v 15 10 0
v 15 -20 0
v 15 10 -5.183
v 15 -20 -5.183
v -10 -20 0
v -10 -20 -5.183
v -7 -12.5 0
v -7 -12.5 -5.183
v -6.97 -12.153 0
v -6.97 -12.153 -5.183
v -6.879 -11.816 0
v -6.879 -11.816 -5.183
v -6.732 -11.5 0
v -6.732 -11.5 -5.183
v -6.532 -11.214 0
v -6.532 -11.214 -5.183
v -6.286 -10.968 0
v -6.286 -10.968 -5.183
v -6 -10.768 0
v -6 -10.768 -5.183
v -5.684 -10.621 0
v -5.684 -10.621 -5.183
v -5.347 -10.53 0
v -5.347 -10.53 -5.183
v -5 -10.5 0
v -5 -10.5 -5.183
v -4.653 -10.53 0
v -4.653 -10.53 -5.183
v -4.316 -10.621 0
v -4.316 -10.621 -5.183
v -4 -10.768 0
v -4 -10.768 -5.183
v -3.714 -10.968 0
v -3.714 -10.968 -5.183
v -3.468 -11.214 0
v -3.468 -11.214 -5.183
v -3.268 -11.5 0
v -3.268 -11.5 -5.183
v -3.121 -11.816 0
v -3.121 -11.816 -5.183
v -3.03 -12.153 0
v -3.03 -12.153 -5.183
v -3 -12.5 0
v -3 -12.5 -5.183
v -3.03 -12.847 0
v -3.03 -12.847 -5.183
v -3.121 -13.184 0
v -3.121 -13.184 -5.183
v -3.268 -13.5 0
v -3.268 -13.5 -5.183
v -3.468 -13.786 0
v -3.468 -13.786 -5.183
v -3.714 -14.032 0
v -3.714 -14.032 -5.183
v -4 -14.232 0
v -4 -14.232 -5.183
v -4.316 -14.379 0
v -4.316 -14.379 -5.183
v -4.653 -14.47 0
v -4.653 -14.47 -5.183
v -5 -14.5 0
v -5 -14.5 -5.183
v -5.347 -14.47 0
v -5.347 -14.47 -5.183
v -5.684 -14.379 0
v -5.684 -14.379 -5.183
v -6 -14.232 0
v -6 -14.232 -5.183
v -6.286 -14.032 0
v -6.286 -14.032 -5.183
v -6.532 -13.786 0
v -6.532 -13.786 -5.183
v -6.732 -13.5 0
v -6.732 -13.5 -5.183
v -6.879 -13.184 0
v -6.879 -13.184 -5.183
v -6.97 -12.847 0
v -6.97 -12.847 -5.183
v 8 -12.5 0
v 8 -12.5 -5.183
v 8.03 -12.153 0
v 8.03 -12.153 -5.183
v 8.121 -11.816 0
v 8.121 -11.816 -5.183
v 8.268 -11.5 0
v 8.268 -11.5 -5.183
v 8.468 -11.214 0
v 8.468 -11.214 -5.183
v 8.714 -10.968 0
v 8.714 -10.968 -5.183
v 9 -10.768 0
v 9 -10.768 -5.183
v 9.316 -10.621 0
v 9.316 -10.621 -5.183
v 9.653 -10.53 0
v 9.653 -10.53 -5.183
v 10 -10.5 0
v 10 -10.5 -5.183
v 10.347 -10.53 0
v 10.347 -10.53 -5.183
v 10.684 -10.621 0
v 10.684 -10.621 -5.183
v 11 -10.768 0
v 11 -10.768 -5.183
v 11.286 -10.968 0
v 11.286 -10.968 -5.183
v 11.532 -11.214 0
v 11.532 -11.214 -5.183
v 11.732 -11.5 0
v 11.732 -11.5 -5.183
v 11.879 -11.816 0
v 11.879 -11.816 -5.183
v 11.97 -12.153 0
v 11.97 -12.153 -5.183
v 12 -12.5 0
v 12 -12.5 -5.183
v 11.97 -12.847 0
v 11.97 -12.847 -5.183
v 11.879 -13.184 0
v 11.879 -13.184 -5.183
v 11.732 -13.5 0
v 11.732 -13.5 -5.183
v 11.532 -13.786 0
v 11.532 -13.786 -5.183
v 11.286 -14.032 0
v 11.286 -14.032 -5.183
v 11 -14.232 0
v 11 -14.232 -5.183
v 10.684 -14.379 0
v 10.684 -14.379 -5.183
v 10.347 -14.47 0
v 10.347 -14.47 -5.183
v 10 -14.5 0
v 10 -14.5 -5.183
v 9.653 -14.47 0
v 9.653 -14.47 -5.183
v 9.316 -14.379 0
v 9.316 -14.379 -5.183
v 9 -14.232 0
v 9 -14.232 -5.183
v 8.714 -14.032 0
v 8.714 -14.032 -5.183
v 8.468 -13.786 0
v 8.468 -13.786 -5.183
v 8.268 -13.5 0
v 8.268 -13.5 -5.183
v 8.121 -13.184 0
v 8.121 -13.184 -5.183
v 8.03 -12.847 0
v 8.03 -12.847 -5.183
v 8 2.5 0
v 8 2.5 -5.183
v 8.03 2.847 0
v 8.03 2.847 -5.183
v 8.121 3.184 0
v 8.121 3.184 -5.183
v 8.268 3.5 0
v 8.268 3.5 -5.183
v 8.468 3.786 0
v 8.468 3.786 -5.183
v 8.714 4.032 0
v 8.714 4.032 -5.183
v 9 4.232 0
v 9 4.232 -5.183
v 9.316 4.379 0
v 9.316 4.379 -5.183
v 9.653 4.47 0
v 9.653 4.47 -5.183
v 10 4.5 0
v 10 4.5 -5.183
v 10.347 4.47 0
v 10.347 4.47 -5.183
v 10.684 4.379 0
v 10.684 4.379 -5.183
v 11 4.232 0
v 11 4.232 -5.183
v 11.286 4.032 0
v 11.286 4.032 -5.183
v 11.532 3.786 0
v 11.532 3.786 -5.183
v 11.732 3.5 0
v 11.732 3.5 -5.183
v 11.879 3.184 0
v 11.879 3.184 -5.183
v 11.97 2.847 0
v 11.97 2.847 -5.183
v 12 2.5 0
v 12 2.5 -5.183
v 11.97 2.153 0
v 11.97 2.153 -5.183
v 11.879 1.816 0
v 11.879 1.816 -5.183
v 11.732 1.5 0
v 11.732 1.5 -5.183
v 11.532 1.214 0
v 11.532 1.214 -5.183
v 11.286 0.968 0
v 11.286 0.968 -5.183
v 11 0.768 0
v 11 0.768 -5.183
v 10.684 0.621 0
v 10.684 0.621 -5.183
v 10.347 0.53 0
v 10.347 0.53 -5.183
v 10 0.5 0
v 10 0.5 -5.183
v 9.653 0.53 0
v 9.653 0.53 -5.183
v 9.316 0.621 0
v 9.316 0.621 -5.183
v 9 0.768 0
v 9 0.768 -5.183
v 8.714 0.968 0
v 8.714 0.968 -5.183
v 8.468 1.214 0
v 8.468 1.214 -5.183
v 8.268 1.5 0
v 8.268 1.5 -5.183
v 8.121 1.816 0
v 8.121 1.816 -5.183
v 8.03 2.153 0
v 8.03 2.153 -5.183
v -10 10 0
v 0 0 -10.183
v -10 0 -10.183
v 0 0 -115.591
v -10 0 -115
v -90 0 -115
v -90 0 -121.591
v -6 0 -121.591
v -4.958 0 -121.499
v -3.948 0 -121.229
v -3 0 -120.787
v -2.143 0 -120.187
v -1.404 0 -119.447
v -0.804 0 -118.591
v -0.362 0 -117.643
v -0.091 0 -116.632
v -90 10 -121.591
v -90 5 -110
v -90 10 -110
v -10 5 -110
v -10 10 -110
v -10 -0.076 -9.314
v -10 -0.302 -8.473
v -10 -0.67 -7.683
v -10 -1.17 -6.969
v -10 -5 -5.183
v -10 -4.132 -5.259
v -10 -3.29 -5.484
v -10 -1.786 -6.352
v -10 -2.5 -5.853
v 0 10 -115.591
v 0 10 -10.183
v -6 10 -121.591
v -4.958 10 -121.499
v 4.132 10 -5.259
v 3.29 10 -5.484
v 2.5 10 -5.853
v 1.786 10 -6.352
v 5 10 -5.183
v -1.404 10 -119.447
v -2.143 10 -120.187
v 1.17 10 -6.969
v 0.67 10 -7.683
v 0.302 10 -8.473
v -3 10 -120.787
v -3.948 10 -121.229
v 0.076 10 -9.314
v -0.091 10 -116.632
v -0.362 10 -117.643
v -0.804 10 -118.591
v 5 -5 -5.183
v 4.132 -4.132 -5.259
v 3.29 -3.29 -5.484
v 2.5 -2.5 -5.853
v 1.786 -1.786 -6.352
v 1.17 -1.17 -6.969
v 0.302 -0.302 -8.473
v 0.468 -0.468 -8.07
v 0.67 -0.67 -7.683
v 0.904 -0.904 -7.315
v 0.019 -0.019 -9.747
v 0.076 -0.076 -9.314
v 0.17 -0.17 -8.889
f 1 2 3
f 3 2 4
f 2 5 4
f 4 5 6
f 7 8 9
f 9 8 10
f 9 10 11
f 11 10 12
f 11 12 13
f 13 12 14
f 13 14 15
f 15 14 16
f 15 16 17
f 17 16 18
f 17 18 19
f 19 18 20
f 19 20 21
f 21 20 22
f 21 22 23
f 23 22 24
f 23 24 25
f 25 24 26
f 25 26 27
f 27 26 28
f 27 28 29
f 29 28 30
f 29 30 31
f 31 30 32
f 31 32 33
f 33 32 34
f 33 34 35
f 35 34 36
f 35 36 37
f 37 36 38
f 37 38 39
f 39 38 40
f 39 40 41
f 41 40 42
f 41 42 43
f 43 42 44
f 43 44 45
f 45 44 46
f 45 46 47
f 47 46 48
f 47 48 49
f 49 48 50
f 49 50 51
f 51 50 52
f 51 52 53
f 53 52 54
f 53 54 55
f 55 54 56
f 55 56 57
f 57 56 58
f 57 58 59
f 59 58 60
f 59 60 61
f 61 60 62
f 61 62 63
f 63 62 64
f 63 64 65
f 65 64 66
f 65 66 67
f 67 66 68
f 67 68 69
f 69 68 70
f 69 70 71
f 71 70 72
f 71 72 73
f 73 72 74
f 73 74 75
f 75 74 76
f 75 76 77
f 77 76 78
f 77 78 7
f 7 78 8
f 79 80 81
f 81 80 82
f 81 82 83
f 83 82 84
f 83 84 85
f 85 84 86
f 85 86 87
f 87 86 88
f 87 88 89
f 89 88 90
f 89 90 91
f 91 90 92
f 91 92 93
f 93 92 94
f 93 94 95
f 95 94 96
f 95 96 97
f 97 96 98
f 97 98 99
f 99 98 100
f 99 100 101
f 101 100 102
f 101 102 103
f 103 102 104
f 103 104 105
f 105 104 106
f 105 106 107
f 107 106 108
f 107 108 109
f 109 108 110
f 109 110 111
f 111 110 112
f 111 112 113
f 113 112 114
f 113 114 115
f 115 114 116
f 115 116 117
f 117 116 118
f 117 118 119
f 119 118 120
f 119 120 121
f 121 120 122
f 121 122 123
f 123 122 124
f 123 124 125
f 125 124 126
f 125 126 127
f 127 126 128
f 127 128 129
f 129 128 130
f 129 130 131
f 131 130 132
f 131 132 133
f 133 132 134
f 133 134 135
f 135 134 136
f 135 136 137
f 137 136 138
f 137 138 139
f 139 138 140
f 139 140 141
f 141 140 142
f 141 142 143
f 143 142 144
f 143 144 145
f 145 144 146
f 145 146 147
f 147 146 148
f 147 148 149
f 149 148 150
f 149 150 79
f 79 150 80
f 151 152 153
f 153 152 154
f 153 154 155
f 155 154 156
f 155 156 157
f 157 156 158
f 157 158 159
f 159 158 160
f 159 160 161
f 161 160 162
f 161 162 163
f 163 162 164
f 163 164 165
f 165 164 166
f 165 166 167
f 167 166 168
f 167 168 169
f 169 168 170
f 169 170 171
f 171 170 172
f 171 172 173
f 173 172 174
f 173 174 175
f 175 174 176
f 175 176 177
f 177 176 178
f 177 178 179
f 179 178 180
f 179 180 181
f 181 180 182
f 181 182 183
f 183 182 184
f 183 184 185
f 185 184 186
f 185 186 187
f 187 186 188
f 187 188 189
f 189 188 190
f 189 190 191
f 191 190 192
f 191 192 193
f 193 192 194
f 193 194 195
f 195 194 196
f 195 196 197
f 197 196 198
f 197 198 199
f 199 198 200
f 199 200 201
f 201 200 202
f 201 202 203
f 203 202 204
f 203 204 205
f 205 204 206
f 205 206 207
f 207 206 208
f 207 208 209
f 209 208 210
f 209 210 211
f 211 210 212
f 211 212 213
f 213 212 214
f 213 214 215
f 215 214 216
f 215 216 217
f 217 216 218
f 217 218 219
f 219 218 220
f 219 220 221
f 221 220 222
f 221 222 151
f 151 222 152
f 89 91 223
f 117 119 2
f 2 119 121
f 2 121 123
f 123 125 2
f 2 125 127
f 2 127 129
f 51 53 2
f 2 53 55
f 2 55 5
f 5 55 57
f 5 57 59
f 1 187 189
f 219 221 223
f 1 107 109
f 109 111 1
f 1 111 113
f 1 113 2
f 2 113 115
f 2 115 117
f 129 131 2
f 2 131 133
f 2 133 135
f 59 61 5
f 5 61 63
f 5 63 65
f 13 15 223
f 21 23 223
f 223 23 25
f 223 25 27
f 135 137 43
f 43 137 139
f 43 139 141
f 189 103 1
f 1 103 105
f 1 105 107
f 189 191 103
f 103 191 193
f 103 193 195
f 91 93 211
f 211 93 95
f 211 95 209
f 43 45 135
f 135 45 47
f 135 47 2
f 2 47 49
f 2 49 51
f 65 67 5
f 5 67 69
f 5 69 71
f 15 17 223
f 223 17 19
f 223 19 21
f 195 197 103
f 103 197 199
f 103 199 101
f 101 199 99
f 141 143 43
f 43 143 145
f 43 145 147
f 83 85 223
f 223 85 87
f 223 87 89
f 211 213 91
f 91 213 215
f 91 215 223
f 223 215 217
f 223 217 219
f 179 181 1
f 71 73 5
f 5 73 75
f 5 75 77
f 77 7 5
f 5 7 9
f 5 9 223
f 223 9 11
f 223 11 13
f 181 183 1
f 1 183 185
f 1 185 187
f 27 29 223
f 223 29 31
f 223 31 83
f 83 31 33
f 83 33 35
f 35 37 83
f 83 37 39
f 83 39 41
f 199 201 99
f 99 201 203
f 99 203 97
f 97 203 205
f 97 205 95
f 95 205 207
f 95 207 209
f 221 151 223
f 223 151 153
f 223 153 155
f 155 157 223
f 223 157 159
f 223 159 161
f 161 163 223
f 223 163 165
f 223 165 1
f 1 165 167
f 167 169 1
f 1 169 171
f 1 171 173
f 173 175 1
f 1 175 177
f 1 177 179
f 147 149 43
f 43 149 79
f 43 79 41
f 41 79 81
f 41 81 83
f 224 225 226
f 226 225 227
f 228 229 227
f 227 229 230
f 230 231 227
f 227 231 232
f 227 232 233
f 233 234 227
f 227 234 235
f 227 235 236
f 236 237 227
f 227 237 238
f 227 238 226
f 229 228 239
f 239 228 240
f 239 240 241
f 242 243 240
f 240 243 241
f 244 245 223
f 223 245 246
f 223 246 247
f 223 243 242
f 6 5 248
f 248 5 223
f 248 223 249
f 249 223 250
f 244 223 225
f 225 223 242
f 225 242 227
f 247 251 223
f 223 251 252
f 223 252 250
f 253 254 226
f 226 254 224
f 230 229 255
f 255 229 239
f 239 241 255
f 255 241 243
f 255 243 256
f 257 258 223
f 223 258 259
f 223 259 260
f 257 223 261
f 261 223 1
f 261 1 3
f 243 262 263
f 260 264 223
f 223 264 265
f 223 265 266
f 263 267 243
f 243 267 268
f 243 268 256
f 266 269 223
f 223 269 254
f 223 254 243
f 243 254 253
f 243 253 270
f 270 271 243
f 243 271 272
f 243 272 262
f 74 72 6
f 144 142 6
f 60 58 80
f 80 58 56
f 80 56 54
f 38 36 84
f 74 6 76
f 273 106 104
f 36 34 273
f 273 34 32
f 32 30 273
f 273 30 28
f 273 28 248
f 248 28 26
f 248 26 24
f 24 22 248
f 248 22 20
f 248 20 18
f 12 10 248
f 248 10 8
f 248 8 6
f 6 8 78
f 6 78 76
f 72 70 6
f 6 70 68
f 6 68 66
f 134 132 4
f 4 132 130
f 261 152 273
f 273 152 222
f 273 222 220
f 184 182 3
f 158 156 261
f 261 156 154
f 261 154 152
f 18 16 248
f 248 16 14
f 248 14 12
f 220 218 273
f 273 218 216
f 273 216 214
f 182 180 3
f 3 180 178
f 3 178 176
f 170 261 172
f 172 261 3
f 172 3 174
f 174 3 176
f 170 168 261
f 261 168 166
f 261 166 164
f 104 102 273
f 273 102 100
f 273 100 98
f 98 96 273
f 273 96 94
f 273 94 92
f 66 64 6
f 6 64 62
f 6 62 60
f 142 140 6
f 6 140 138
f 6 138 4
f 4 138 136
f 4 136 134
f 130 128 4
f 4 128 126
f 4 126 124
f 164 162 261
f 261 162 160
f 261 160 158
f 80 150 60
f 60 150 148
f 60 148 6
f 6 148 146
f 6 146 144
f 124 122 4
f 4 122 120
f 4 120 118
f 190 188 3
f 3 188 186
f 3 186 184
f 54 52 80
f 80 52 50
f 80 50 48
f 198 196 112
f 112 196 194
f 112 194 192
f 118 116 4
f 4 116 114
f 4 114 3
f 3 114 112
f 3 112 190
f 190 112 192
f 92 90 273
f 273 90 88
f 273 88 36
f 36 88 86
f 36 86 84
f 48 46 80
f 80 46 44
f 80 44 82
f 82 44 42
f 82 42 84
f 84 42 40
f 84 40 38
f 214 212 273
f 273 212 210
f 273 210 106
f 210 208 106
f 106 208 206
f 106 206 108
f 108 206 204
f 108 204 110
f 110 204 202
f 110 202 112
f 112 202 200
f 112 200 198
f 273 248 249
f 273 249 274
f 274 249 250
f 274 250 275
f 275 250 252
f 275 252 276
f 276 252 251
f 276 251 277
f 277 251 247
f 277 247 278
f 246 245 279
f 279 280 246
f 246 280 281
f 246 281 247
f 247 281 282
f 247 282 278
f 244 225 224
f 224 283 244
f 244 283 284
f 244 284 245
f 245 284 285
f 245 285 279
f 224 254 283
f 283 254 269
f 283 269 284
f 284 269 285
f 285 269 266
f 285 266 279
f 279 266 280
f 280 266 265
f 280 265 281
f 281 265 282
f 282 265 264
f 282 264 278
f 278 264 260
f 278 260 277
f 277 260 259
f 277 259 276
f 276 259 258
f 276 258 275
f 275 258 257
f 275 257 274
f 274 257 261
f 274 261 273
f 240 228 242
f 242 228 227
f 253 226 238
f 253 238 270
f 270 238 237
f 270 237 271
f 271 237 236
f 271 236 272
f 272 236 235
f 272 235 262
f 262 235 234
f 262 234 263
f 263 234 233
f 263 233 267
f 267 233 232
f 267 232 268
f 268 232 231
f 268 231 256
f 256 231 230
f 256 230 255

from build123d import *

# Parameters (mm, degrees)
SKETCH1_W           = 10
SKETCH1_H           = 110
SKETCH1_W_2         = 15
SKETCH1_H_2         = 7.182689318
BOSS_EXTRUDE1_DEPTH = 10
SKETCH2_W           = 25
SKETCH2_H           = 7.182689318
BOSS_EXTRUDE2_DEPTH = 20
SKETCH3_R           = 2
CUT_EXTRUDE1_DEPTH  = 20
SKETCH4_R           = 2
CUT_EXTRUDE2_DEPTH  = 2
FILLET2_R           = 5
CHAMFER2_SIZE       = 5
FILLET3_R           = 6


with BuildPart() as part:
    # Sketch1 → Boss-Extrude1 (new body)
    with BuildSketch(Plane(origin=(0, 0, 0), x_dir=(1, 0, 0), z_dir=(0, 1, 0))):
        Polygon((-10, 110), (0, 110), (0, 121.590602055), (-90, 121.590602055), (-90, 110), align=None)
        with Locations((-5, 55)):
            Rectangle(SKETCH1_W, SKETCH1_H)
        with Locations((7.5, 3.591344659)):
            Rectangle(SKETCH1_W_2, SKETCH1_H_2)
    extrude(amount=BOSS_EXTRUDE1_DEPTH)

    # Sketch2 → Boss-Extrude2 (add)
    with BuildSketch(Plane.XZ):
        with Locations((2.5, -3.591344659)):
            Rectangle(SKETCH2_W, SKETCH2_H)
    extrude(amount=BOSS_EXTRUDE2_DEPTH)

    # Sketch3 → Cut-Extrude1 (cut)
    with BuildSketch(Plane(origin=(0, 0, -7.182689318), x_dir=(-1, 0, 0), z_dir=(0, 0, -1))):
        with Locations((-10, 2.5)):
            Circle(SKETCH3_R)
        with Locations(Location((-10, -12.5, 0), (0, 0, 180))):
            Circle(SKETCH3_R)
        with Locations((5, -12.5)):
            Circle(SKETCH3_R)
    extrude(amount=-CUT_EXTRUDE1_DEPTH, mode=Mode.SUBTRACT)

    # Sketch4 → Cut-Extrude2 (cut)
    with BuildSketch(Plane(origin=(0, 0, -7.182689318), x_dir=(-1, 0, 0), z_dir=(0, 0, -1))):
        Polygon((10, 0), (0, 0), (0, 10), (-15, 10), (-15, -20), (10, -20), align=None)
        with Locations((5, -12.5)):
            Circle(SKETCH4_R, mode=Mode.SUBTRACT)
        with Locations((-10, -12.5)):
            Circle(SKETCH4_R, mode=Mode.SUBTRACT)
        with Locations((-10, 2.5)):
            Circle(SKETCH4_R, mode=Mode.SUBTRACT)
    extrude(amount=-CUT_EXTRUDE2_DEPTH, mode=Mode.SUBTRACT)

    # Fillet2
    fillet2_edges = [part.edges().sort_by_distance(p)[0] for p in [
        (0, 5, -5.182689318),
        (-5, 0, -5.182689318),
    ]]
    fillet(fillet2_edges, radius=FILLET2_R)

    # Chamfer2
    chamfer2_edges = [part.edges().sort_by_distance(p)[0] for p in [
        (-50, 0, -110),
    ]]
    chamfer(chamfer2_edges, length=CHAMFER2_SIZE)

    # Fillet3
    fillet3_edges = [part.edges().sort_by_distance(p)[0] for p in [
        (0, 5, -121.590602055),
    ]]
    fillet(fillet3_edges, radius=FILLET3_R)


solid = part.part
